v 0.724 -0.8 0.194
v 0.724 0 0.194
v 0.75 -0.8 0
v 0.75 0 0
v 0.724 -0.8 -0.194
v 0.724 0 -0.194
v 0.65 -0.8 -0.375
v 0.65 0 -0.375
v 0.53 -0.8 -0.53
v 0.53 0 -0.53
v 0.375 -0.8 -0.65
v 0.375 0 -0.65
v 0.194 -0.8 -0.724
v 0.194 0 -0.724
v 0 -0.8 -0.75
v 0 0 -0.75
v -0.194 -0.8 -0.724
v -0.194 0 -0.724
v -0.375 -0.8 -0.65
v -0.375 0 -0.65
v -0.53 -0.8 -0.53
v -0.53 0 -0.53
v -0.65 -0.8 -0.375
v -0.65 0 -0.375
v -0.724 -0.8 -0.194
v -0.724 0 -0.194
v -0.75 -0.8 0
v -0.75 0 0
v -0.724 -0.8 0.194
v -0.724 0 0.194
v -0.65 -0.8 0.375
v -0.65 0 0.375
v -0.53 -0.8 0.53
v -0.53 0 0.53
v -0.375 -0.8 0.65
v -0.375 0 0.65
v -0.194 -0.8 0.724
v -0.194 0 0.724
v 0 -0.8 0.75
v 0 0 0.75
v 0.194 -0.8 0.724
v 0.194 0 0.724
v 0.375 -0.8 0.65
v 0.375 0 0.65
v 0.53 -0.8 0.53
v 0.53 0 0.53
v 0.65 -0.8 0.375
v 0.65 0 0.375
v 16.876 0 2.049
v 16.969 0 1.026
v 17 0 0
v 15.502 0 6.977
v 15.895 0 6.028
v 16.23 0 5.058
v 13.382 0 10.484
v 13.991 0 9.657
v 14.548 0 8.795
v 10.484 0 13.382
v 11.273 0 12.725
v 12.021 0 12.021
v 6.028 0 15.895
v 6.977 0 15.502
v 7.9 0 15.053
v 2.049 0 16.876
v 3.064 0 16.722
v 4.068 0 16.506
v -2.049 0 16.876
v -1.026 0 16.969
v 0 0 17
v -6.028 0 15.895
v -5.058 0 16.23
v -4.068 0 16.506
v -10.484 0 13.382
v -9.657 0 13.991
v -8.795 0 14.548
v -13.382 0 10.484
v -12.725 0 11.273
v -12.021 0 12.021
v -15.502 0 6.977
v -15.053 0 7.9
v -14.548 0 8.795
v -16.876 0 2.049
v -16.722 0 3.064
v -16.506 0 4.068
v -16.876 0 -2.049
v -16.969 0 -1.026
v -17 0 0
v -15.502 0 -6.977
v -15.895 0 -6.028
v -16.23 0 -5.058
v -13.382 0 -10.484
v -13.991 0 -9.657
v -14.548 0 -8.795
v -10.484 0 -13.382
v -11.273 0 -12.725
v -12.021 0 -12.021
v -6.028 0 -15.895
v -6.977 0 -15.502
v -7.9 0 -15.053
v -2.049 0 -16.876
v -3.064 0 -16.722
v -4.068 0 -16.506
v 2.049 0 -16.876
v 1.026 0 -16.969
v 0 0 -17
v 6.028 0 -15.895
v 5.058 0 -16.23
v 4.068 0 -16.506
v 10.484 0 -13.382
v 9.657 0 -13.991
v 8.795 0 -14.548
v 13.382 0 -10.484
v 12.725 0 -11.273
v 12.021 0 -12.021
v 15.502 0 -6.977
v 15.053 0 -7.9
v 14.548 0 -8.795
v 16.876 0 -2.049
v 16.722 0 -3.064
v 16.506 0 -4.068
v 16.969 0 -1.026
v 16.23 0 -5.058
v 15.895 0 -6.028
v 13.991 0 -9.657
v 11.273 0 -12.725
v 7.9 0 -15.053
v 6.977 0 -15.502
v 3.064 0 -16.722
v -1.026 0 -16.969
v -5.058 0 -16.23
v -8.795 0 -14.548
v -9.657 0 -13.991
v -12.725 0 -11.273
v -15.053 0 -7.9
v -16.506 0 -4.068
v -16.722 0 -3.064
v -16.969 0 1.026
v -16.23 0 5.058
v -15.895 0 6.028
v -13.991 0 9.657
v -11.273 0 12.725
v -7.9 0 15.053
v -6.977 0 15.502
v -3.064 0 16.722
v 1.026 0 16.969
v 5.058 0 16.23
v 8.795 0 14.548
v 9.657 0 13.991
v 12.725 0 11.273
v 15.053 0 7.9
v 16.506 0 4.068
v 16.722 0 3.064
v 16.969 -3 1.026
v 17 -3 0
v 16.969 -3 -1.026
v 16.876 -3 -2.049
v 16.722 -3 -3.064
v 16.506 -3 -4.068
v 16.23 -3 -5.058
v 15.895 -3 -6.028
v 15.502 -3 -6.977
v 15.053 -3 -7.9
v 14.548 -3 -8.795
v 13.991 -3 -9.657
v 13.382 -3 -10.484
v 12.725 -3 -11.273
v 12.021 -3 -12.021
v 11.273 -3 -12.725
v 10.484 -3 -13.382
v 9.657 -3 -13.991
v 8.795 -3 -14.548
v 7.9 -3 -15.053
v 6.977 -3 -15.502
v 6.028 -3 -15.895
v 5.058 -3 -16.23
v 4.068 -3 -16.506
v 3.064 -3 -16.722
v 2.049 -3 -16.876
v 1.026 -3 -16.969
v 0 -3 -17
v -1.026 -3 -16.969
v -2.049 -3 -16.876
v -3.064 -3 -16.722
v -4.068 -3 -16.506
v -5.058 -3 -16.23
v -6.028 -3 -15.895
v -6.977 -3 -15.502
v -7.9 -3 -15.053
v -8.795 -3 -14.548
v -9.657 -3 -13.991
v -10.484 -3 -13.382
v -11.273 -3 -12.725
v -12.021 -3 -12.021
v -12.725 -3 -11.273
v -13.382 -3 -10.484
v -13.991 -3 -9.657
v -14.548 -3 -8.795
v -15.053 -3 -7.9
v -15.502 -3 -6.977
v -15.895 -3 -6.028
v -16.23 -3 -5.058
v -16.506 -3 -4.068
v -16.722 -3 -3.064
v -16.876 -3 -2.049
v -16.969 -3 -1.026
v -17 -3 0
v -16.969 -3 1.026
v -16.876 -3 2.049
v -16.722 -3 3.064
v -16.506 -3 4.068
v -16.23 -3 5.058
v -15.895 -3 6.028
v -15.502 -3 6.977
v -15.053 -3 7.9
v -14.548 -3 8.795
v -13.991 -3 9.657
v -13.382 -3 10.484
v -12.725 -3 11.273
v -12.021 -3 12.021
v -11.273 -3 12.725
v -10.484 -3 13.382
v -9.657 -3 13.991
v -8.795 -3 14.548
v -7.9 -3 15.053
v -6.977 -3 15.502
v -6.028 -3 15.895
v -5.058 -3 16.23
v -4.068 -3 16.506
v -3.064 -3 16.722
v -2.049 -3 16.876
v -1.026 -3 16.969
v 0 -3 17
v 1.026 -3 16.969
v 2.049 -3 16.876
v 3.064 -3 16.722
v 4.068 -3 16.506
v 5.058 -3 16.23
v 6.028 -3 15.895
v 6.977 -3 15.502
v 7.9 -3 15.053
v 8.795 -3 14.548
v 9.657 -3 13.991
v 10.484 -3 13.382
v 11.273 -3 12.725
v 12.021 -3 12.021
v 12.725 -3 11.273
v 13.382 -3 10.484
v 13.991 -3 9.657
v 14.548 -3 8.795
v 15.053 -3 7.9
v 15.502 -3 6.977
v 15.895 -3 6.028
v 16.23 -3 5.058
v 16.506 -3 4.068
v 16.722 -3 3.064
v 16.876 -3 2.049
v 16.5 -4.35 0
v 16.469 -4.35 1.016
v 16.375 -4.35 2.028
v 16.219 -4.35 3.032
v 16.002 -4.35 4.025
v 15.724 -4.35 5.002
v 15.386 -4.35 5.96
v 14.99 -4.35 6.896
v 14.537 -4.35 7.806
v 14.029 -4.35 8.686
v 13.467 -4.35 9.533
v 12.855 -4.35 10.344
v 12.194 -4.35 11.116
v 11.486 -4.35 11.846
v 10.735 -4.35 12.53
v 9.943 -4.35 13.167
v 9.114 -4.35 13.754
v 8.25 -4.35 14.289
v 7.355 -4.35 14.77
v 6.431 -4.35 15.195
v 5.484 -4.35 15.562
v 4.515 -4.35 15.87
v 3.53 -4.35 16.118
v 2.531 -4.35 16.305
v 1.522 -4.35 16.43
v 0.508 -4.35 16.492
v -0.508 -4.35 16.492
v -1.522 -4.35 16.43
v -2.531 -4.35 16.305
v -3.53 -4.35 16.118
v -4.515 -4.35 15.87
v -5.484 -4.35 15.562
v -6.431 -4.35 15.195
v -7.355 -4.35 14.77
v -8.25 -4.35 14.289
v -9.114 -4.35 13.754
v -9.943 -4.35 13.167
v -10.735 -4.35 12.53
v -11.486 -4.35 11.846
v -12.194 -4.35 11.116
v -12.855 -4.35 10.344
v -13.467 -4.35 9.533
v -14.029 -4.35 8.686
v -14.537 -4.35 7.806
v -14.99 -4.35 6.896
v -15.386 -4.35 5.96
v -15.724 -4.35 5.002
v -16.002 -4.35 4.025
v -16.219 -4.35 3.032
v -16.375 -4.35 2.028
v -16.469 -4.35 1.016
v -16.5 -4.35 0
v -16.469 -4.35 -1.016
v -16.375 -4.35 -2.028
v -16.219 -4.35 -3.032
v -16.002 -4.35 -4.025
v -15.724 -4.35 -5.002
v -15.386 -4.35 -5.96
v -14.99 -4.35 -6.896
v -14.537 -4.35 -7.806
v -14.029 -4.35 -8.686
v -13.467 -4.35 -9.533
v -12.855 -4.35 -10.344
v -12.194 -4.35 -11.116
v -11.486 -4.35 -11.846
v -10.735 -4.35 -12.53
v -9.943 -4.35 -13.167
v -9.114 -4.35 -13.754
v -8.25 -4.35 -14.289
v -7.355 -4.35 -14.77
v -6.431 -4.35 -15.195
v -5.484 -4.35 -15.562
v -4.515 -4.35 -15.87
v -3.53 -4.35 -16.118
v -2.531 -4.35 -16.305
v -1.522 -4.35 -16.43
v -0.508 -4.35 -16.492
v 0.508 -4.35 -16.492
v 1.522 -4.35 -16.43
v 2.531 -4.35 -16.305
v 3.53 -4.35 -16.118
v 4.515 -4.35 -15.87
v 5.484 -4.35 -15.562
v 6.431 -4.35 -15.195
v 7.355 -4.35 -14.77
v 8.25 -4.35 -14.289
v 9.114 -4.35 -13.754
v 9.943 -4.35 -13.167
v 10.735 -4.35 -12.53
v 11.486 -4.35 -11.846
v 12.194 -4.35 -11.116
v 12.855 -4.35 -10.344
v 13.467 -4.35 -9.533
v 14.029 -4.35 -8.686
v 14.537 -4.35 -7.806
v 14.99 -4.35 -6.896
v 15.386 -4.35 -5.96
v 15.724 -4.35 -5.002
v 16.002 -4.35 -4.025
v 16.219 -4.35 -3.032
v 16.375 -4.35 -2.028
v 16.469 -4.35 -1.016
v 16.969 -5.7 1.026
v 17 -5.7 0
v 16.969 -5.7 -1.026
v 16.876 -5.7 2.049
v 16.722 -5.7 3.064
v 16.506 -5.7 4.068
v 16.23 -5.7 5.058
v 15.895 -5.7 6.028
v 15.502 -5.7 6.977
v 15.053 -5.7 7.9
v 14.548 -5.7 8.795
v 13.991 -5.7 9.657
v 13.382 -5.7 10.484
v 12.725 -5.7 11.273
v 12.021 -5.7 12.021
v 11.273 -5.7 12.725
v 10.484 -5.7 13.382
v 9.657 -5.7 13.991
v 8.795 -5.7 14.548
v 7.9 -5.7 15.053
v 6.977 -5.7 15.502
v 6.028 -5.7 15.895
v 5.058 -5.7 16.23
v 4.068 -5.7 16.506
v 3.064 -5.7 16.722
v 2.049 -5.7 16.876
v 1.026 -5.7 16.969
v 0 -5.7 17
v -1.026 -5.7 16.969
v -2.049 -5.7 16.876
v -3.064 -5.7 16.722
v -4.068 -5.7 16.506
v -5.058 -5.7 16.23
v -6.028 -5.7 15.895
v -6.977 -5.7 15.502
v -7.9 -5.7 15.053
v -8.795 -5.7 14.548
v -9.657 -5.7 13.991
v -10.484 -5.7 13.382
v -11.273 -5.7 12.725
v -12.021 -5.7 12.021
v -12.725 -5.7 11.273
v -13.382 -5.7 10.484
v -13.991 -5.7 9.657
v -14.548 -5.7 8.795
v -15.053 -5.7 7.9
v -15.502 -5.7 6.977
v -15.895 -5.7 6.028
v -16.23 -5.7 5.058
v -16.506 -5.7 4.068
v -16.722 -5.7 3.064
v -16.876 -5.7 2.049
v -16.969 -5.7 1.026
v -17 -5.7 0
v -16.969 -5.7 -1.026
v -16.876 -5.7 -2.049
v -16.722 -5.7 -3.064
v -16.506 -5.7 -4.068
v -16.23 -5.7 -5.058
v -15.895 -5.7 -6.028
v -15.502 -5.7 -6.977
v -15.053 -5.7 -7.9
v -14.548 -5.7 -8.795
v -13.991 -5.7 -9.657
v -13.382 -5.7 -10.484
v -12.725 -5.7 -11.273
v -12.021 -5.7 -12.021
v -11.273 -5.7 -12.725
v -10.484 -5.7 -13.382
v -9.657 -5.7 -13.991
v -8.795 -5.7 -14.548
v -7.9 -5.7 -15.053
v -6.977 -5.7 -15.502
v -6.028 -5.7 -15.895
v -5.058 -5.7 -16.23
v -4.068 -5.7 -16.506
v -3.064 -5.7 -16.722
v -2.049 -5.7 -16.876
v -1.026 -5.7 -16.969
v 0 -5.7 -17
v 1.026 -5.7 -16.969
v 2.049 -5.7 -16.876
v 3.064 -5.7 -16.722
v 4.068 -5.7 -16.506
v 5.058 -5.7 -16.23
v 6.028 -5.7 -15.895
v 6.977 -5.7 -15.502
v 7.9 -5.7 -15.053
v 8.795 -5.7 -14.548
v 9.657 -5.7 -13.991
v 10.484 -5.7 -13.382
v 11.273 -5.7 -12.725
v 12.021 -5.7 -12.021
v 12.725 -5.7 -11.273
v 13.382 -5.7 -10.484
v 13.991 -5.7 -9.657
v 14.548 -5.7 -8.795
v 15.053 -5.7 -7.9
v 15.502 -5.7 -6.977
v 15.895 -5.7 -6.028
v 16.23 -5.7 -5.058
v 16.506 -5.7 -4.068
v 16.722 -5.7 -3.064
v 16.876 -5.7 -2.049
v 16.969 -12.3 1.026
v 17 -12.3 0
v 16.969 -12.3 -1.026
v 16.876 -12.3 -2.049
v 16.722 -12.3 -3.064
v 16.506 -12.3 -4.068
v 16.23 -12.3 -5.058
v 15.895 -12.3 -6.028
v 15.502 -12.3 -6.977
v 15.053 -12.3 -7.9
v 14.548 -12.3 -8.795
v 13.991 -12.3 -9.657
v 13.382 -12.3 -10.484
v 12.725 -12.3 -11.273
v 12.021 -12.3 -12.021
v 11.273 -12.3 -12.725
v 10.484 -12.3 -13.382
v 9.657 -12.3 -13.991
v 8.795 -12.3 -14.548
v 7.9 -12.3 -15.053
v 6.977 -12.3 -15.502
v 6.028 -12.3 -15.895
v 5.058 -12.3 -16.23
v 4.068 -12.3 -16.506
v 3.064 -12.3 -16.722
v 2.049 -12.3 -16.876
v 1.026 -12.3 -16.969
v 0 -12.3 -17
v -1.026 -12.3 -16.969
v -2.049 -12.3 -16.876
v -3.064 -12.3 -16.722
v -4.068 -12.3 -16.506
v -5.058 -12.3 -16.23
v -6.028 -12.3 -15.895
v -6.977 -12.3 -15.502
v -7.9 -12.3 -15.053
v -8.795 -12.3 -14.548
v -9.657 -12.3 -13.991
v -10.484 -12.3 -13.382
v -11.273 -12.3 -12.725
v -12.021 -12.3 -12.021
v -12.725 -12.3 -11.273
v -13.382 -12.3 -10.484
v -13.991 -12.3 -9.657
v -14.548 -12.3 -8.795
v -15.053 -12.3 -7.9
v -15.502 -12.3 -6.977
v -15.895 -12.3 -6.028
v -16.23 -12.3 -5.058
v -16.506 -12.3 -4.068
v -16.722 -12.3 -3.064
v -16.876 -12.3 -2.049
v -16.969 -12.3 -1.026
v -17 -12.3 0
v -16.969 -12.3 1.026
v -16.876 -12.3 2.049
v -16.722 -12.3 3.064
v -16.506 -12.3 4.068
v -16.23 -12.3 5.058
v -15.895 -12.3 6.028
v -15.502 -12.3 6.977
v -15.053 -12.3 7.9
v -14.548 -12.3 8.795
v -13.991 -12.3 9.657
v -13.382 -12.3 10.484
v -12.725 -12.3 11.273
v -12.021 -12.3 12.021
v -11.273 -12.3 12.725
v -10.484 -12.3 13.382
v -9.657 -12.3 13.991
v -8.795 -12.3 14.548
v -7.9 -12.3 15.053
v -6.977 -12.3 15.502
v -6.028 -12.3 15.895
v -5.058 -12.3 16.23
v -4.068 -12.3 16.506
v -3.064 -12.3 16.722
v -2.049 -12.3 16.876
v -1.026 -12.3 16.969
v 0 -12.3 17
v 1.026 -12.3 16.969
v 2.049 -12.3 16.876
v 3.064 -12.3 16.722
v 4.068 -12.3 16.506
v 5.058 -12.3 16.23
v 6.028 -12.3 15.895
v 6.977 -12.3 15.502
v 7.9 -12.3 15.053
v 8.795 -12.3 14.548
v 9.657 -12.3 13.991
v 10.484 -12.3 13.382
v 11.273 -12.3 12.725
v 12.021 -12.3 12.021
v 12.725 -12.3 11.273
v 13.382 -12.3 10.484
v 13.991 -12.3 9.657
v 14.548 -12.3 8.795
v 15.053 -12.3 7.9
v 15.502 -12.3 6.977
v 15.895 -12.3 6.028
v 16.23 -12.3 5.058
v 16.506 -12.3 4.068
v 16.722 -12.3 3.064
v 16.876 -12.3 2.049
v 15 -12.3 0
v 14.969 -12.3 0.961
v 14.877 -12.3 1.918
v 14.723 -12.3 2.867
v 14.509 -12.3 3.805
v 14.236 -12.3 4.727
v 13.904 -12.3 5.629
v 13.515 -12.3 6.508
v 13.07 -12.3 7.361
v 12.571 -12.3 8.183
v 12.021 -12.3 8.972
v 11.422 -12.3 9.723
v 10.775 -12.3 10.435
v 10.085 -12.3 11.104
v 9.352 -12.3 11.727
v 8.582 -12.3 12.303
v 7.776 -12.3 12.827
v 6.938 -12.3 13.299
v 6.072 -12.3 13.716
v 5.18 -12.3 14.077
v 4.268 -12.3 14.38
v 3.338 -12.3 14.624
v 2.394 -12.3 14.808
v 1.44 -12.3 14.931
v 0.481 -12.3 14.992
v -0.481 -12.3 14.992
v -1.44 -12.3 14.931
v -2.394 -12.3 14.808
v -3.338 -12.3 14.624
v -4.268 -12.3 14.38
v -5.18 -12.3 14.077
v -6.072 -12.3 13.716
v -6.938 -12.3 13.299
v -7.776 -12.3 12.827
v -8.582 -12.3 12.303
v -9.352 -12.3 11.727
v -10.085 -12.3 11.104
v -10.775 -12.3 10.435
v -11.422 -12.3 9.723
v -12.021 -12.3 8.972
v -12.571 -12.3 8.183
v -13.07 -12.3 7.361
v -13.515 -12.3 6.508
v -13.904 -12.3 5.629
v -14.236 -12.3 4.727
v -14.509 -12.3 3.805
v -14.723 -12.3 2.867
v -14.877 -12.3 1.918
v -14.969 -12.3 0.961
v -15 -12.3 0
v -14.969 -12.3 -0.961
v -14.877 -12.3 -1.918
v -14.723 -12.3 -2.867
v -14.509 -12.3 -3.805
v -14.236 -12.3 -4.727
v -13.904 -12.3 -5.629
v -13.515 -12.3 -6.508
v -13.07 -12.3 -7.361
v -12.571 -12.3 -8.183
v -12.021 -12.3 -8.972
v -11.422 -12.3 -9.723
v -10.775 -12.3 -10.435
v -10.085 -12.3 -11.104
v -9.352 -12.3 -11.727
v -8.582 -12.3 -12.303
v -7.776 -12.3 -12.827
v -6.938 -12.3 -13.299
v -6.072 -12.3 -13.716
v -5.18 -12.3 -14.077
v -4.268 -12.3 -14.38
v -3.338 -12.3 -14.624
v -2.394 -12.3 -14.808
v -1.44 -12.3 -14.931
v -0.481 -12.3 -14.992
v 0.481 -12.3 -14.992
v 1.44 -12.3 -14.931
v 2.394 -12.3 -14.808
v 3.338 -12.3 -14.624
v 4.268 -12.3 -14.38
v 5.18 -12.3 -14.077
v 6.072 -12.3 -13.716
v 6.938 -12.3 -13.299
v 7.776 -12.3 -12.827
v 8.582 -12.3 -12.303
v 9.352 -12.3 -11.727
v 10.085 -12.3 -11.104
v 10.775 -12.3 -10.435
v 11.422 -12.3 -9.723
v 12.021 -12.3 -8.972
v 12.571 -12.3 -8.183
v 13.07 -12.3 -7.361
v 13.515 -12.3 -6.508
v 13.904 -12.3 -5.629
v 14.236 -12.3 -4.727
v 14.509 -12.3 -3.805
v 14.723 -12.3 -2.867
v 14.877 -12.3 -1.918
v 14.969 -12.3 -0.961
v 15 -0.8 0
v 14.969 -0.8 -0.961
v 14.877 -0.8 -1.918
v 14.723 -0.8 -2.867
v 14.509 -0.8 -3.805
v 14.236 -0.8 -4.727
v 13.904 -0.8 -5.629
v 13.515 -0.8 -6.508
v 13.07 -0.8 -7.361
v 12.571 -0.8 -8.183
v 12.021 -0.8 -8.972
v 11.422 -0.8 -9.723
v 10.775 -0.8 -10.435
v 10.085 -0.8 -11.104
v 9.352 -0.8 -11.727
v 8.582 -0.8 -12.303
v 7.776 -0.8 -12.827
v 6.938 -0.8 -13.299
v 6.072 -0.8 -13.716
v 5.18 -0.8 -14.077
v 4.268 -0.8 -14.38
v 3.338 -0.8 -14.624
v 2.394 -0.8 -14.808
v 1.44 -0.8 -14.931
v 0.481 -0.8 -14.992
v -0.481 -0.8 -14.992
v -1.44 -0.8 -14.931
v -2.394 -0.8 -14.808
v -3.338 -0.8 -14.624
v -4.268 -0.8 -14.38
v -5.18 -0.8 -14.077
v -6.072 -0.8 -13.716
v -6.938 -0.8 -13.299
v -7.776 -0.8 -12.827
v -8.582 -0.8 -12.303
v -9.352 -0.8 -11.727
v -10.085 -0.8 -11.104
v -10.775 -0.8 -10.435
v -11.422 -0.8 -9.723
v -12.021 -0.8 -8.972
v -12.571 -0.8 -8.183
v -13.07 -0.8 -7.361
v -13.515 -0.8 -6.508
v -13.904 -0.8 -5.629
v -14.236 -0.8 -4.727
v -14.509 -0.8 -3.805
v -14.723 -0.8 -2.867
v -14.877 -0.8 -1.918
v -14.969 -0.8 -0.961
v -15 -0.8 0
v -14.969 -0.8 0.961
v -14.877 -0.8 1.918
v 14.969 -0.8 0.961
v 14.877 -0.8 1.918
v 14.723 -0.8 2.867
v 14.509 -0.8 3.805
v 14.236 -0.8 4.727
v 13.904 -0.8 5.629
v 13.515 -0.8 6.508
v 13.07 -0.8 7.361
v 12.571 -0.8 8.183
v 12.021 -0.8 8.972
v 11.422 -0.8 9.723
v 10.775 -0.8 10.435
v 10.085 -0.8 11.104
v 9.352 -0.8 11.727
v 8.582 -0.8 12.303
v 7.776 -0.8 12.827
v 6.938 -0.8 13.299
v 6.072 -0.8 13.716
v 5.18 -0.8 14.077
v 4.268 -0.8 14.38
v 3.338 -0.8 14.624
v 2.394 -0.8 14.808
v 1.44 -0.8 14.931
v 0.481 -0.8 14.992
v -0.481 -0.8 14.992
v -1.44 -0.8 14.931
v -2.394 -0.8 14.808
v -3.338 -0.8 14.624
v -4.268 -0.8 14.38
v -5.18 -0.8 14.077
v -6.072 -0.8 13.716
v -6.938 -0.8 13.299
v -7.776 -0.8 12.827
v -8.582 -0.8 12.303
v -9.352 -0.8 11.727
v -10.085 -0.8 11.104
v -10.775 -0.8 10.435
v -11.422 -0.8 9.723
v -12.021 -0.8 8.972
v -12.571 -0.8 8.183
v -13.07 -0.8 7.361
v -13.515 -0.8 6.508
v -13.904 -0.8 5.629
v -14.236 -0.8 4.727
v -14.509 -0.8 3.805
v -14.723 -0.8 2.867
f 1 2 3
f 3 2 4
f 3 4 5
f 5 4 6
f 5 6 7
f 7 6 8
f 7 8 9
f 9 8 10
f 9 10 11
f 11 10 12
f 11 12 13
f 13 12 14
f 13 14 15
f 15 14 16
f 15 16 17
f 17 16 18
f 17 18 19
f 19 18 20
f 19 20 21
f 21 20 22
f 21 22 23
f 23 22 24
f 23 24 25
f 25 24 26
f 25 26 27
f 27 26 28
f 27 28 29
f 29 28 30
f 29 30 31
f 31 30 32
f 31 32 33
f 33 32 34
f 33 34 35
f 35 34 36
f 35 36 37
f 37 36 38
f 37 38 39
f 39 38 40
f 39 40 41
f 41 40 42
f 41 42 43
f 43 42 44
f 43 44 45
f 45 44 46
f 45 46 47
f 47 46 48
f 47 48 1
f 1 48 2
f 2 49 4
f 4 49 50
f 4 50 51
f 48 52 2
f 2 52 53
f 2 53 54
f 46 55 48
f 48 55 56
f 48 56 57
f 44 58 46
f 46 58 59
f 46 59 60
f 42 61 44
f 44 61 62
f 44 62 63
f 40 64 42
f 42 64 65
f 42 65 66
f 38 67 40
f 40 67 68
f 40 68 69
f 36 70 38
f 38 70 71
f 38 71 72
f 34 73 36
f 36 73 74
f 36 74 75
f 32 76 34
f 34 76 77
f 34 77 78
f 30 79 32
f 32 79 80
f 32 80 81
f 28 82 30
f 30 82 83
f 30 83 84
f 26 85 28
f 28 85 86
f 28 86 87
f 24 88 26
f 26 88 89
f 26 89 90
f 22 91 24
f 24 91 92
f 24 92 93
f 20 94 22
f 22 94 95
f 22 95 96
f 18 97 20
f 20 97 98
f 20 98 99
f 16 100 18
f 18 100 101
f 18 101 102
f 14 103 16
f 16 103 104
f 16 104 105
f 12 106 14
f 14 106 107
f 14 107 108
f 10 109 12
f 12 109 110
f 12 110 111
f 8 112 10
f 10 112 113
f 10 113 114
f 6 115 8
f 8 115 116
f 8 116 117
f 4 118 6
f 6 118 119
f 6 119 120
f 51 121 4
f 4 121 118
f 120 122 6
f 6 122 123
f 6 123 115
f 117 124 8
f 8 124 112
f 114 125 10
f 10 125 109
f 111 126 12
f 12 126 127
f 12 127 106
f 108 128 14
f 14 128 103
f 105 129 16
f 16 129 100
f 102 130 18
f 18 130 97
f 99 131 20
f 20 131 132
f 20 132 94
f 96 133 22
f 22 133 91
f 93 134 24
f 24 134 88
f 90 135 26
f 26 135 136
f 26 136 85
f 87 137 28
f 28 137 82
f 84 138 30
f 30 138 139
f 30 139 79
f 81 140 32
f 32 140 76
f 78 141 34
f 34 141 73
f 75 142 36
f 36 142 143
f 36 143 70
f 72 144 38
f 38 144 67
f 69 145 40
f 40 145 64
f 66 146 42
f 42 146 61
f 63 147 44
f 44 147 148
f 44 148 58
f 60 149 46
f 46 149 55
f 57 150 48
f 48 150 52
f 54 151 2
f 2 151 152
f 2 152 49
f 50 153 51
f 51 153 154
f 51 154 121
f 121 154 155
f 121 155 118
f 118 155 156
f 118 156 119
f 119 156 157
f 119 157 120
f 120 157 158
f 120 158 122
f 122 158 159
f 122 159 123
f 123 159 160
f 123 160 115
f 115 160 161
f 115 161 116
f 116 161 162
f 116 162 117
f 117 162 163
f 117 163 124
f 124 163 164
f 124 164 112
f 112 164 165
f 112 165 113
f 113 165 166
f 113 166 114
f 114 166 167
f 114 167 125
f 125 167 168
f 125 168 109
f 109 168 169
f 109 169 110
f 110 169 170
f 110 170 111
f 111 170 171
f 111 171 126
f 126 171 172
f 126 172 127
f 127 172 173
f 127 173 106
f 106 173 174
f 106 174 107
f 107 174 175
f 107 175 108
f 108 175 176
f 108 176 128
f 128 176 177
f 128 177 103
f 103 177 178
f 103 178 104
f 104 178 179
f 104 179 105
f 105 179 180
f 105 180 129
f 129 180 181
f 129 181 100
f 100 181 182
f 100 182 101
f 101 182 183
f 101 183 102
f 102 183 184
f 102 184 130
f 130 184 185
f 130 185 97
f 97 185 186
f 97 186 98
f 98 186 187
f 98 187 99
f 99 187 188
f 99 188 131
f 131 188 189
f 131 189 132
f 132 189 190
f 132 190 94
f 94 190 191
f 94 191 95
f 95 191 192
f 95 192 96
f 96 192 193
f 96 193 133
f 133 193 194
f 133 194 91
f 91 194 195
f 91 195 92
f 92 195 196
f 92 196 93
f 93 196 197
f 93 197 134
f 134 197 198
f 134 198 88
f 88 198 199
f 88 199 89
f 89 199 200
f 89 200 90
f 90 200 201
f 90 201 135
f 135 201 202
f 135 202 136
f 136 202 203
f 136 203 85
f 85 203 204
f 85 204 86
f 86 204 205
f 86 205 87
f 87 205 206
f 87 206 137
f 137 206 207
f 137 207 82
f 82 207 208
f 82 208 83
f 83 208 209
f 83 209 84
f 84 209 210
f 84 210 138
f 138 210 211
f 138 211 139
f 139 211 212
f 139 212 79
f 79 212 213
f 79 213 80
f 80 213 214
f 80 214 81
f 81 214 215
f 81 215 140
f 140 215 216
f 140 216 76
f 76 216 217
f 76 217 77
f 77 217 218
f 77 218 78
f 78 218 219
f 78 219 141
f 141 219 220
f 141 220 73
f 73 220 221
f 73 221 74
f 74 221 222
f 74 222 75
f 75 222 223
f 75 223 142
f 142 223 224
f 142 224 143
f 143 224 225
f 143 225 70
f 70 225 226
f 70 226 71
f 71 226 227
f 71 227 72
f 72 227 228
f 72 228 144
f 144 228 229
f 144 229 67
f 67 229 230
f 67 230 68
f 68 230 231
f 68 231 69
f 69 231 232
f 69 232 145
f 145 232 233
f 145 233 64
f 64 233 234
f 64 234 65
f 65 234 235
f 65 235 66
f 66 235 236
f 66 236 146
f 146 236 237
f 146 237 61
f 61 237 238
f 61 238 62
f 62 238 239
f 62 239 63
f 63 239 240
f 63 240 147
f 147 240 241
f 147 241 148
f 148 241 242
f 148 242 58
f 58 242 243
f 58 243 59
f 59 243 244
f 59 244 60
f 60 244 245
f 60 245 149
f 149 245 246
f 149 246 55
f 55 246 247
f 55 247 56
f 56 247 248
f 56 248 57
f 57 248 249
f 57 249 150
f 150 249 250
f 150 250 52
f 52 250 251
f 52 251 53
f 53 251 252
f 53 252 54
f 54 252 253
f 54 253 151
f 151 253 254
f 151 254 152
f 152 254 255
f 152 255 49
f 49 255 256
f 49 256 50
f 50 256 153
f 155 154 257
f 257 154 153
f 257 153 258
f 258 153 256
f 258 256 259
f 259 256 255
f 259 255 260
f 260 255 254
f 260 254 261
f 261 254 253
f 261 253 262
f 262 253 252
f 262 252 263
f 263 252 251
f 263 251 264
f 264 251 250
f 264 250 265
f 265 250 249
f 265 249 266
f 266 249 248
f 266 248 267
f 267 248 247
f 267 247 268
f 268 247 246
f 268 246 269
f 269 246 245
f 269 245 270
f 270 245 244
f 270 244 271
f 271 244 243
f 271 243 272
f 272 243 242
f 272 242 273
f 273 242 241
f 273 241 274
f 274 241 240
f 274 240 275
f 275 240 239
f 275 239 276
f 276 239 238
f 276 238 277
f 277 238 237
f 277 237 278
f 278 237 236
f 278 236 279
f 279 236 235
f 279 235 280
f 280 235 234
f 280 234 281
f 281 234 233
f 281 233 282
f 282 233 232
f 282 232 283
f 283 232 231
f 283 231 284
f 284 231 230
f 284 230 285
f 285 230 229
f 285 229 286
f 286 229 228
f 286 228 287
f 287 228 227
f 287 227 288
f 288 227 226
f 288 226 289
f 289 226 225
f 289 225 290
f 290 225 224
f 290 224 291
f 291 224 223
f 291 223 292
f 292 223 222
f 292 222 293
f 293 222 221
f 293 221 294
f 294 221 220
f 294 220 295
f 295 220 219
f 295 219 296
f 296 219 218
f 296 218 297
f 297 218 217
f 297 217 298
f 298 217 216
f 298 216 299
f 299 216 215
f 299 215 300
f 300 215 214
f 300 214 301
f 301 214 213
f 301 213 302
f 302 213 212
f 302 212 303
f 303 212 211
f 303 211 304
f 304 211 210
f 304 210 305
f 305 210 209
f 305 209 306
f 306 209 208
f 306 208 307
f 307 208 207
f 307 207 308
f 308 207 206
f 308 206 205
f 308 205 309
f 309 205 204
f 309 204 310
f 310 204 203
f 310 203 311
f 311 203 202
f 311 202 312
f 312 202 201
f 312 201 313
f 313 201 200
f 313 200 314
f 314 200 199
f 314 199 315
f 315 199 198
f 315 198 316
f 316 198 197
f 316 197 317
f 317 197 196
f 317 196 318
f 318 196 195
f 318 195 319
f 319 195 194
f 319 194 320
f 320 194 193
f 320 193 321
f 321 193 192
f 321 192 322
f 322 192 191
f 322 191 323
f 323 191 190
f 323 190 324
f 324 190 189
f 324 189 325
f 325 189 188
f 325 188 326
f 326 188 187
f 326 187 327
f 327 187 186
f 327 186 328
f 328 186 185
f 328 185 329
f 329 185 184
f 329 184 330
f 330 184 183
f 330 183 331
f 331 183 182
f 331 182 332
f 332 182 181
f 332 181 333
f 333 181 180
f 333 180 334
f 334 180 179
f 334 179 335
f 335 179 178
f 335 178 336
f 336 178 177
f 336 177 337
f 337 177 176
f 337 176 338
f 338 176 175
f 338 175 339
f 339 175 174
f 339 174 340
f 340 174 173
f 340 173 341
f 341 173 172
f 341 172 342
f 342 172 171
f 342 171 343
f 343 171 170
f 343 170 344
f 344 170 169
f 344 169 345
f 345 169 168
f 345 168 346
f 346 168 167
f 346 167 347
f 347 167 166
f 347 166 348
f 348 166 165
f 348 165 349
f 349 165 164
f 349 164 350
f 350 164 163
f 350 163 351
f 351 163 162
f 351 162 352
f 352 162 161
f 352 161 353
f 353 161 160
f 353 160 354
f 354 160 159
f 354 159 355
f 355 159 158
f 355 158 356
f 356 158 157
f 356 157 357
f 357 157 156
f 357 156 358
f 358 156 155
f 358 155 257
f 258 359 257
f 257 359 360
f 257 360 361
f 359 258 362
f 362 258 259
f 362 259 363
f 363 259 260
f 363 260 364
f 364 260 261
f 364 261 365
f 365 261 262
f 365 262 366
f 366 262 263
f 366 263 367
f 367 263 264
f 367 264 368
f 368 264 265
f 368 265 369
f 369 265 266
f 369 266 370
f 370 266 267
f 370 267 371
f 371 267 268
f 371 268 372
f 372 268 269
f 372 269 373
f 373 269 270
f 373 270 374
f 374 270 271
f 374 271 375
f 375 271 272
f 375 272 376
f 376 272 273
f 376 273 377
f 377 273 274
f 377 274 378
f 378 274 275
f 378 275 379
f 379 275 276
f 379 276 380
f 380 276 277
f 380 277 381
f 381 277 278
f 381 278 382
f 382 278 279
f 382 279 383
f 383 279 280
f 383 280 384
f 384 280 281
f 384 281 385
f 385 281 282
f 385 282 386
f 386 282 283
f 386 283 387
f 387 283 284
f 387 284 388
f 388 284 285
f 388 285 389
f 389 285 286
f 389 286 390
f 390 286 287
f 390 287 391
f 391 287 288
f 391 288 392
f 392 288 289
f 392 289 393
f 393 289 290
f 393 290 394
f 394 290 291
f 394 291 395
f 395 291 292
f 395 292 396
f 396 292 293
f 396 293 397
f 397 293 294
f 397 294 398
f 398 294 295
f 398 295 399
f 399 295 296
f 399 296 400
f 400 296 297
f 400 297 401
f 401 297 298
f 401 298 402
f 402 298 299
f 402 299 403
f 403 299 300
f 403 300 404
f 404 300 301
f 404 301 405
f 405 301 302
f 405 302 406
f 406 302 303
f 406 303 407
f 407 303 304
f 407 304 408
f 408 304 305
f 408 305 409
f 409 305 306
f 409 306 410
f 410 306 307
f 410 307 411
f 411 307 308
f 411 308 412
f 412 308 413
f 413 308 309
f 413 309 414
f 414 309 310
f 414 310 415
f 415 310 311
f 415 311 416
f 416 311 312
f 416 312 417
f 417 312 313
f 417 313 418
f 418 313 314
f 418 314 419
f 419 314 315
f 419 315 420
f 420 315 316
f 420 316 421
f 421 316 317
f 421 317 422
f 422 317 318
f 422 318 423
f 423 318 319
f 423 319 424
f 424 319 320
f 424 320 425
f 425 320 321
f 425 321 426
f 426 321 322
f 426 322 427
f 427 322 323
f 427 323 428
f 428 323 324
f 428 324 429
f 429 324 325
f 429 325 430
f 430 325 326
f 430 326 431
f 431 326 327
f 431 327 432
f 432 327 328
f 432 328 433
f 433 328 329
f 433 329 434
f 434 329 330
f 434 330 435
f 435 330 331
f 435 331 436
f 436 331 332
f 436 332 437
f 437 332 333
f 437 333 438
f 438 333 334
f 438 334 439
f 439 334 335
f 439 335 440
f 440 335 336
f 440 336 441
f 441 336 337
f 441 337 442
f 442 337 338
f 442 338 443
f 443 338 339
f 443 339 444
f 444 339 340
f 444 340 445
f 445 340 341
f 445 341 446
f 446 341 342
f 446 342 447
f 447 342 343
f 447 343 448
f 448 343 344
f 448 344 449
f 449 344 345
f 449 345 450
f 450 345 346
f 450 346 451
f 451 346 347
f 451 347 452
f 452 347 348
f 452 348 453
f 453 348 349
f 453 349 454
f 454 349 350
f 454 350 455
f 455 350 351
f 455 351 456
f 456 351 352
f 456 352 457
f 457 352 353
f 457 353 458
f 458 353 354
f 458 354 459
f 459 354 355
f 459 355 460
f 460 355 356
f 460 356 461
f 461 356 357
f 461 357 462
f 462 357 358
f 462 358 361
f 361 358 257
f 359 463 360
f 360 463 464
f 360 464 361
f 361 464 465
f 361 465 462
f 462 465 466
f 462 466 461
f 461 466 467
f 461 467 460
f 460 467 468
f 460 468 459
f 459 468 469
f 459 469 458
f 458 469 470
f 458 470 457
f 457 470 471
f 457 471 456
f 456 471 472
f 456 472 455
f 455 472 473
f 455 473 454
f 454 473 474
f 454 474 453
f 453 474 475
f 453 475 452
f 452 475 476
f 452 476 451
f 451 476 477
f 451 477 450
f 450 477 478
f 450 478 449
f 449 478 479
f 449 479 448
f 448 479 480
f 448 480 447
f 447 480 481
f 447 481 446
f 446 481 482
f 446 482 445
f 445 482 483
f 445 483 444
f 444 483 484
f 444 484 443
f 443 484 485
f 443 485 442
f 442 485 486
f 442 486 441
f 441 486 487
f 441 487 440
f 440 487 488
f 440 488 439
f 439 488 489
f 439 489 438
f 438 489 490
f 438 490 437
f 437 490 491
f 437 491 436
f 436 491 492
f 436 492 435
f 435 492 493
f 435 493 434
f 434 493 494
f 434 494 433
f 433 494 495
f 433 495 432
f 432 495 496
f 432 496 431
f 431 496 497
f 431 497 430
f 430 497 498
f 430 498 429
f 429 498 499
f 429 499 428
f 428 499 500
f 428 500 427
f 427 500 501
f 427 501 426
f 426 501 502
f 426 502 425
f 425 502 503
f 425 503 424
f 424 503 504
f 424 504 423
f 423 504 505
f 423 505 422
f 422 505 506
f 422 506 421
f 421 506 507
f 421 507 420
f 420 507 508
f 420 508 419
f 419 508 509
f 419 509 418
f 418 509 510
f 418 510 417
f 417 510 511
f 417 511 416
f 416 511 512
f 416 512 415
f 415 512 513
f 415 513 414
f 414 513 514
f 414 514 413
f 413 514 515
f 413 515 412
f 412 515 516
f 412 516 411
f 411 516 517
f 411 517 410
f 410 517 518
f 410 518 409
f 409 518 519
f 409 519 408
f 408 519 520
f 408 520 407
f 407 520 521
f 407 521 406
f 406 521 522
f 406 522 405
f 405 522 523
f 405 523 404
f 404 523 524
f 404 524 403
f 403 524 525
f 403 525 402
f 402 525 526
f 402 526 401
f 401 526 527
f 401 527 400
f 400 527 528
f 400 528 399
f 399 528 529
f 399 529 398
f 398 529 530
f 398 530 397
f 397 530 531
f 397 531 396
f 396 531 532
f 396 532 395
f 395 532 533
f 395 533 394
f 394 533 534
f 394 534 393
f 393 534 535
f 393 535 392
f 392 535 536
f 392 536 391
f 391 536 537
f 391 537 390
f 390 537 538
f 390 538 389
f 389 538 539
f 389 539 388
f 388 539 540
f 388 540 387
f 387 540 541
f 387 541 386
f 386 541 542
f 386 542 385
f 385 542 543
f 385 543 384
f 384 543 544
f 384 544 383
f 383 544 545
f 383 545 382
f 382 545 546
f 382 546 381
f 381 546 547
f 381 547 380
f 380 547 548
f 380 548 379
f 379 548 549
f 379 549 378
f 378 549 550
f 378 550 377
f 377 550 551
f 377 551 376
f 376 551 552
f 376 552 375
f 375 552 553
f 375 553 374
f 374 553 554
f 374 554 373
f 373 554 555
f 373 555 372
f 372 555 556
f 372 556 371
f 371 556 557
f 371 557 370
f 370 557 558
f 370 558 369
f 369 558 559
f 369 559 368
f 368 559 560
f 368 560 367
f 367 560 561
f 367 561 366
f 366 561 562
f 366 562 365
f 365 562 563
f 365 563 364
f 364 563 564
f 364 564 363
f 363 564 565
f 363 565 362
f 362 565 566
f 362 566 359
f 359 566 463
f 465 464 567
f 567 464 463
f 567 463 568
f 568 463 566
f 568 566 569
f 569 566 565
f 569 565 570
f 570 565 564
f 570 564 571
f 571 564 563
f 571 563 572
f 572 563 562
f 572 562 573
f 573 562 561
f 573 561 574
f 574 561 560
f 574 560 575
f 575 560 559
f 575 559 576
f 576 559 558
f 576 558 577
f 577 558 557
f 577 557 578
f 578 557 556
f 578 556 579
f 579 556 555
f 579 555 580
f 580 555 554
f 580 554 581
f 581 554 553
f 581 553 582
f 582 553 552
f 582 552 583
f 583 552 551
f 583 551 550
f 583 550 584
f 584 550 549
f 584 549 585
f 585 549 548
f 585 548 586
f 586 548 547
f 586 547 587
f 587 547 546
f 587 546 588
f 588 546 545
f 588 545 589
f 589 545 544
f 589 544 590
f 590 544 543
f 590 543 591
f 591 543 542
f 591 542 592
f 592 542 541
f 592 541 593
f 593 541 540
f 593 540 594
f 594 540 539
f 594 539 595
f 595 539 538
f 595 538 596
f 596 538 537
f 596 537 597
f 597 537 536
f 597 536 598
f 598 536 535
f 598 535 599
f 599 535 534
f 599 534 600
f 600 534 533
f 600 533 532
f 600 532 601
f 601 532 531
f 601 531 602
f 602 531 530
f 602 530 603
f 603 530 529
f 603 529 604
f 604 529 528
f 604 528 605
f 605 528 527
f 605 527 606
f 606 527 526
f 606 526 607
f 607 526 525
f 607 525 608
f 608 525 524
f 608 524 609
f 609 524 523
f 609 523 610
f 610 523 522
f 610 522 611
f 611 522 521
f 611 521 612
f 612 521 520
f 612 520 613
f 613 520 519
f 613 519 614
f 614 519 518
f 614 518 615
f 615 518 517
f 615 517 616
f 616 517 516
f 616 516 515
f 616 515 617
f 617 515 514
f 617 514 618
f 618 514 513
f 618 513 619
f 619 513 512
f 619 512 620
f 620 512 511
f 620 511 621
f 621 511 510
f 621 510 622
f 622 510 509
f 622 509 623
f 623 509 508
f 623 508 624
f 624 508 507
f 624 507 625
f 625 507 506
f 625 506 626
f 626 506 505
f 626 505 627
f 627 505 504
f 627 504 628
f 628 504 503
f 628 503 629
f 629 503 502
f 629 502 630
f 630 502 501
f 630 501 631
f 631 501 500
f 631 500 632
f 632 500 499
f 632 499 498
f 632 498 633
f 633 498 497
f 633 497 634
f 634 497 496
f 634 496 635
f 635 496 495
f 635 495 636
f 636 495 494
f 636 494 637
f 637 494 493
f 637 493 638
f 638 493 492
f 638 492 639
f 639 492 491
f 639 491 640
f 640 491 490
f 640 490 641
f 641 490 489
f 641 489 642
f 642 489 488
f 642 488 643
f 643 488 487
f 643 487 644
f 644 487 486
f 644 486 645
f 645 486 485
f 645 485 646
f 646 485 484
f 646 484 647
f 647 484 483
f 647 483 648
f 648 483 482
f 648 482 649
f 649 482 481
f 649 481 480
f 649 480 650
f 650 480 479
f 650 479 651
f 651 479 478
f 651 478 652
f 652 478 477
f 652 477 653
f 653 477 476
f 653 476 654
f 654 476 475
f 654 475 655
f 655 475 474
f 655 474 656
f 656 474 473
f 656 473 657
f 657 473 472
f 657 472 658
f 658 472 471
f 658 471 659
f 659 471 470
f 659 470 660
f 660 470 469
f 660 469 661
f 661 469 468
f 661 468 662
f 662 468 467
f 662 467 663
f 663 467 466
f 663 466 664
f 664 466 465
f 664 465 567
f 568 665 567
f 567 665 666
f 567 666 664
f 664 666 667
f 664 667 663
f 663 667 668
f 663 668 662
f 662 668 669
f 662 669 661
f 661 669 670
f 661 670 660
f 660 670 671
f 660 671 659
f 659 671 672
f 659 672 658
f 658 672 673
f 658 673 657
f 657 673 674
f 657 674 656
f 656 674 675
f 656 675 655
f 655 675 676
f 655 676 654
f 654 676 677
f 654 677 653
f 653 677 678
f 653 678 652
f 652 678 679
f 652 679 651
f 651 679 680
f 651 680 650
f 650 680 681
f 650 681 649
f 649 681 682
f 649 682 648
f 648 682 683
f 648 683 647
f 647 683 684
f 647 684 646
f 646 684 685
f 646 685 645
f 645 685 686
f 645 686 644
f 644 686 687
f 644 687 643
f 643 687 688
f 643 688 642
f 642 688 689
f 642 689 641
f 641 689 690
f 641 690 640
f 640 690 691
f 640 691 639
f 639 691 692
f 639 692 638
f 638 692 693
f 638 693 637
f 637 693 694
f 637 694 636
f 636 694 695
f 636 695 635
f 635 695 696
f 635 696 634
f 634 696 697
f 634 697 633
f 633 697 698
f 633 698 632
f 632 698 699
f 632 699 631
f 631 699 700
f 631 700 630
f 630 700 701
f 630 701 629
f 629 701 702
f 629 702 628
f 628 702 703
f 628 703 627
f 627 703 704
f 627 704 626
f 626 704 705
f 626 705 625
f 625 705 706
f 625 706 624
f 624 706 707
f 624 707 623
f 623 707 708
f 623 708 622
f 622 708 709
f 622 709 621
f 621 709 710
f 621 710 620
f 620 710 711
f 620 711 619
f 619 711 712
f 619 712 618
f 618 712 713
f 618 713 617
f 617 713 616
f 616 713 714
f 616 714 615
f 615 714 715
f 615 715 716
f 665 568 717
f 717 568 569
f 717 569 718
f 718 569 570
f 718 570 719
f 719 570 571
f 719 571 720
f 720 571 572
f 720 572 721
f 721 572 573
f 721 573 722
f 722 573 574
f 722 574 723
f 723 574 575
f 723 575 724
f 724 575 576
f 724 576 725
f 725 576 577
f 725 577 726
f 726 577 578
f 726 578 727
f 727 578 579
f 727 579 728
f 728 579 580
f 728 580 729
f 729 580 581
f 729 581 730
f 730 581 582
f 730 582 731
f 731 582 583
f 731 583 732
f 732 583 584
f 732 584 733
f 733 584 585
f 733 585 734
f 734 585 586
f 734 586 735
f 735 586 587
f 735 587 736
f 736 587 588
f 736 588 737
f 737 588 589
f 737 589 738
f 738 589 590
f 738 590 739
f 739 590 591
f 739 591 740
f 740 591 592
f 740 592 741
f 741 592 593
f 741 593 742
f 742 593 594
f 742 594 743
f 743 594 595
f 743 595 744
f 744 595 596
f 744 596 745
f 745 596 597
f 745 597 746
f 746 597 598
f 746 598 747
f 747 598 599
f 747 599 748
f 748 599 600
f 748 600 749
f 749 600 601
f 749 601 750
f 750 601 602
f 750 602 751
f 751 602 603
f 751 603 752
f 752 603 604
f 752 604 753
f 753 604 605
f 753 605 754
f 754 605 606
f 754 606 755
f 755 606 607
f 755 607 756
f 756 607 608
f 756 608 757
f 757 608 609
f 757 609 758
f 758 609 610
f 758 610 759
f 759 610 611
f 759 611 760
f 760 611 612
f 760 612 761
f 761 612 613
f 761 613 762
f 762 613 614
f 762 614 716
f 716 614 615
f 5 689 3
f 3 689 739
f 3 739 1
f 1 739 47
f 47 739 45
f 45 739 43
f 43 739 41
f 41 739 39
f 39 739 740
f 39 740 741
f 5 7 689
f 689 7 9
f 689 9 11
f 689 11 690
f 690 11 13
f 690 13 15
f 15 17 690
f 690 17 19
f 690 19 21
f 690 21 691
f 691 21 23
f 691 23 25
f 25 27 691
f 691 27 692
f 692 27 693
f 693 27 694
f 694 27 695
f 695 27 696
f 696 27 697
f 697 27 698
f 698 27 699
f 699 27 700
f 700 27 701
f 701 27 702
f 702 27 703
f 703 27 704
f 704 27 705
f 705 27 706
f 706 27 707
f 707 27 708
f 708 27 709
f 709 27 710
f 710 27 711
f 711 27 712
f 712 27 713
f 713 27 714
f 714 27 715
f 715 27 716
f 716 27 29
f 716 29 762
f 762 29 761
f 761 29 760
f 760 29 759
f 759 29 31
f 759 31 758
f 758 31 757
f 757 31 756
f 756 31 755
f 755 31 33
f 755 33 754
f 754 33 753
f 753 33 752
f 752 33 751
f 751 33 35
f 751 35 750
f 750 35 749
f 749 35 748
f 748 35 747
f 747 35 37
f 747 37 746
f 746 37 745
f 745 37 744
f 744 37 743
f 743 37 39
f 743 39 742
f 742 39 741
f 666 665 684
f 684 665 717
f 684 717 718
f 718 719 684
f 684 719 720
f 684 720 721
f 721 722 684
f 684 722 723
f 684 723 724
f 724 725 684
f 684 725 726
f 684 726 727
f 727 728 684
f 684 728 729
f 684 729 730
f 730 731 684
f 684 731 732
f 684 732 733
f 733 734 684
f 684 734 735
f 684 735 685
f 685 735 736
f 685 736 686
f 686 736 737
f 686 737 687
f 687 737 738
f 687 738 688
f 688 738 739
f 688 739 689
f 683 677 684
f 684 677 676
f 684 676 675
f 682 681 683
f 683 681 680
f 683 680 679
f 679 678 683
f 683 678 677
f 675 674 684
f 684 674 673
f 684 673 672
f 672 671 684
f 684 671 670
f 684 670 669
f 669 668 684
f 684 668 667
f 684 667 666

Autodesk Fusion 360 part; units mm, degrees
sketch "Sketch1" plane through (0, 0, 0) normal (0, 0, 1) x (1, 0, 0)
  line L0 (0, 0) -> (17, 0)
  line L1 (17, 0) -> (17, -3)
  line L2 (17, -3) -> (17, -5.7)
  line L3 (17, -5.7) -> (17, -12.3)
  line L4 (17, -12.3) -> (15, -12.3)
  line L5 (15, -12.3) -> (15, -0.8)
  line L6 (17, -3) -> (17, -4.35) construction
  line L7 (17, -4.35) -> (16.5, -4.35) construction
  line L8 (17, -3) -> (16.5, -4.35)
  line L9 (16.5, -4.35) -> (17, -5.7)
  line L10 (0, 0) -> (0, -0.8)
  line L11 (0, -0.8) -> (15, -0.8)
  dimension "d1" = 17
  dimension "d2" = 3
  dimension "d4" = 2.7
  dimension "d5" = 6.6
  dimension "d6" = 2
  dimension "d8" = 1.35
  dimension "d9" = 0.5
  dimension "d10" = 15
  dimension "d12" = 17
  dimension "d19" = 0.8
revolve "Revolve1" add sketch "Sketch1" angle 360 about axis through (0, 0, 0) along (0, -1, 0) contours L0 L1 L3 L4 L5 L8 L9 L10 L11
sketch "Sketch2" plane through (0, 0, 0) normal (0, 1, 0) x (-1, 0, 0)
  circle A0 centre (0, 0) radius 17
  circle A1 centre (0, 0) radius 16.575
  circle A2 centre (0, 0) radius 0.75
  dimension "d14" = 34
  dimension "d15" = 33.15
  dimension "d16" = 1.5
extrude "Extrude1" cut sketch "Sketch2" against normal blind 3 contours A2
equation "d15 = d14 - 0.85 mm"
